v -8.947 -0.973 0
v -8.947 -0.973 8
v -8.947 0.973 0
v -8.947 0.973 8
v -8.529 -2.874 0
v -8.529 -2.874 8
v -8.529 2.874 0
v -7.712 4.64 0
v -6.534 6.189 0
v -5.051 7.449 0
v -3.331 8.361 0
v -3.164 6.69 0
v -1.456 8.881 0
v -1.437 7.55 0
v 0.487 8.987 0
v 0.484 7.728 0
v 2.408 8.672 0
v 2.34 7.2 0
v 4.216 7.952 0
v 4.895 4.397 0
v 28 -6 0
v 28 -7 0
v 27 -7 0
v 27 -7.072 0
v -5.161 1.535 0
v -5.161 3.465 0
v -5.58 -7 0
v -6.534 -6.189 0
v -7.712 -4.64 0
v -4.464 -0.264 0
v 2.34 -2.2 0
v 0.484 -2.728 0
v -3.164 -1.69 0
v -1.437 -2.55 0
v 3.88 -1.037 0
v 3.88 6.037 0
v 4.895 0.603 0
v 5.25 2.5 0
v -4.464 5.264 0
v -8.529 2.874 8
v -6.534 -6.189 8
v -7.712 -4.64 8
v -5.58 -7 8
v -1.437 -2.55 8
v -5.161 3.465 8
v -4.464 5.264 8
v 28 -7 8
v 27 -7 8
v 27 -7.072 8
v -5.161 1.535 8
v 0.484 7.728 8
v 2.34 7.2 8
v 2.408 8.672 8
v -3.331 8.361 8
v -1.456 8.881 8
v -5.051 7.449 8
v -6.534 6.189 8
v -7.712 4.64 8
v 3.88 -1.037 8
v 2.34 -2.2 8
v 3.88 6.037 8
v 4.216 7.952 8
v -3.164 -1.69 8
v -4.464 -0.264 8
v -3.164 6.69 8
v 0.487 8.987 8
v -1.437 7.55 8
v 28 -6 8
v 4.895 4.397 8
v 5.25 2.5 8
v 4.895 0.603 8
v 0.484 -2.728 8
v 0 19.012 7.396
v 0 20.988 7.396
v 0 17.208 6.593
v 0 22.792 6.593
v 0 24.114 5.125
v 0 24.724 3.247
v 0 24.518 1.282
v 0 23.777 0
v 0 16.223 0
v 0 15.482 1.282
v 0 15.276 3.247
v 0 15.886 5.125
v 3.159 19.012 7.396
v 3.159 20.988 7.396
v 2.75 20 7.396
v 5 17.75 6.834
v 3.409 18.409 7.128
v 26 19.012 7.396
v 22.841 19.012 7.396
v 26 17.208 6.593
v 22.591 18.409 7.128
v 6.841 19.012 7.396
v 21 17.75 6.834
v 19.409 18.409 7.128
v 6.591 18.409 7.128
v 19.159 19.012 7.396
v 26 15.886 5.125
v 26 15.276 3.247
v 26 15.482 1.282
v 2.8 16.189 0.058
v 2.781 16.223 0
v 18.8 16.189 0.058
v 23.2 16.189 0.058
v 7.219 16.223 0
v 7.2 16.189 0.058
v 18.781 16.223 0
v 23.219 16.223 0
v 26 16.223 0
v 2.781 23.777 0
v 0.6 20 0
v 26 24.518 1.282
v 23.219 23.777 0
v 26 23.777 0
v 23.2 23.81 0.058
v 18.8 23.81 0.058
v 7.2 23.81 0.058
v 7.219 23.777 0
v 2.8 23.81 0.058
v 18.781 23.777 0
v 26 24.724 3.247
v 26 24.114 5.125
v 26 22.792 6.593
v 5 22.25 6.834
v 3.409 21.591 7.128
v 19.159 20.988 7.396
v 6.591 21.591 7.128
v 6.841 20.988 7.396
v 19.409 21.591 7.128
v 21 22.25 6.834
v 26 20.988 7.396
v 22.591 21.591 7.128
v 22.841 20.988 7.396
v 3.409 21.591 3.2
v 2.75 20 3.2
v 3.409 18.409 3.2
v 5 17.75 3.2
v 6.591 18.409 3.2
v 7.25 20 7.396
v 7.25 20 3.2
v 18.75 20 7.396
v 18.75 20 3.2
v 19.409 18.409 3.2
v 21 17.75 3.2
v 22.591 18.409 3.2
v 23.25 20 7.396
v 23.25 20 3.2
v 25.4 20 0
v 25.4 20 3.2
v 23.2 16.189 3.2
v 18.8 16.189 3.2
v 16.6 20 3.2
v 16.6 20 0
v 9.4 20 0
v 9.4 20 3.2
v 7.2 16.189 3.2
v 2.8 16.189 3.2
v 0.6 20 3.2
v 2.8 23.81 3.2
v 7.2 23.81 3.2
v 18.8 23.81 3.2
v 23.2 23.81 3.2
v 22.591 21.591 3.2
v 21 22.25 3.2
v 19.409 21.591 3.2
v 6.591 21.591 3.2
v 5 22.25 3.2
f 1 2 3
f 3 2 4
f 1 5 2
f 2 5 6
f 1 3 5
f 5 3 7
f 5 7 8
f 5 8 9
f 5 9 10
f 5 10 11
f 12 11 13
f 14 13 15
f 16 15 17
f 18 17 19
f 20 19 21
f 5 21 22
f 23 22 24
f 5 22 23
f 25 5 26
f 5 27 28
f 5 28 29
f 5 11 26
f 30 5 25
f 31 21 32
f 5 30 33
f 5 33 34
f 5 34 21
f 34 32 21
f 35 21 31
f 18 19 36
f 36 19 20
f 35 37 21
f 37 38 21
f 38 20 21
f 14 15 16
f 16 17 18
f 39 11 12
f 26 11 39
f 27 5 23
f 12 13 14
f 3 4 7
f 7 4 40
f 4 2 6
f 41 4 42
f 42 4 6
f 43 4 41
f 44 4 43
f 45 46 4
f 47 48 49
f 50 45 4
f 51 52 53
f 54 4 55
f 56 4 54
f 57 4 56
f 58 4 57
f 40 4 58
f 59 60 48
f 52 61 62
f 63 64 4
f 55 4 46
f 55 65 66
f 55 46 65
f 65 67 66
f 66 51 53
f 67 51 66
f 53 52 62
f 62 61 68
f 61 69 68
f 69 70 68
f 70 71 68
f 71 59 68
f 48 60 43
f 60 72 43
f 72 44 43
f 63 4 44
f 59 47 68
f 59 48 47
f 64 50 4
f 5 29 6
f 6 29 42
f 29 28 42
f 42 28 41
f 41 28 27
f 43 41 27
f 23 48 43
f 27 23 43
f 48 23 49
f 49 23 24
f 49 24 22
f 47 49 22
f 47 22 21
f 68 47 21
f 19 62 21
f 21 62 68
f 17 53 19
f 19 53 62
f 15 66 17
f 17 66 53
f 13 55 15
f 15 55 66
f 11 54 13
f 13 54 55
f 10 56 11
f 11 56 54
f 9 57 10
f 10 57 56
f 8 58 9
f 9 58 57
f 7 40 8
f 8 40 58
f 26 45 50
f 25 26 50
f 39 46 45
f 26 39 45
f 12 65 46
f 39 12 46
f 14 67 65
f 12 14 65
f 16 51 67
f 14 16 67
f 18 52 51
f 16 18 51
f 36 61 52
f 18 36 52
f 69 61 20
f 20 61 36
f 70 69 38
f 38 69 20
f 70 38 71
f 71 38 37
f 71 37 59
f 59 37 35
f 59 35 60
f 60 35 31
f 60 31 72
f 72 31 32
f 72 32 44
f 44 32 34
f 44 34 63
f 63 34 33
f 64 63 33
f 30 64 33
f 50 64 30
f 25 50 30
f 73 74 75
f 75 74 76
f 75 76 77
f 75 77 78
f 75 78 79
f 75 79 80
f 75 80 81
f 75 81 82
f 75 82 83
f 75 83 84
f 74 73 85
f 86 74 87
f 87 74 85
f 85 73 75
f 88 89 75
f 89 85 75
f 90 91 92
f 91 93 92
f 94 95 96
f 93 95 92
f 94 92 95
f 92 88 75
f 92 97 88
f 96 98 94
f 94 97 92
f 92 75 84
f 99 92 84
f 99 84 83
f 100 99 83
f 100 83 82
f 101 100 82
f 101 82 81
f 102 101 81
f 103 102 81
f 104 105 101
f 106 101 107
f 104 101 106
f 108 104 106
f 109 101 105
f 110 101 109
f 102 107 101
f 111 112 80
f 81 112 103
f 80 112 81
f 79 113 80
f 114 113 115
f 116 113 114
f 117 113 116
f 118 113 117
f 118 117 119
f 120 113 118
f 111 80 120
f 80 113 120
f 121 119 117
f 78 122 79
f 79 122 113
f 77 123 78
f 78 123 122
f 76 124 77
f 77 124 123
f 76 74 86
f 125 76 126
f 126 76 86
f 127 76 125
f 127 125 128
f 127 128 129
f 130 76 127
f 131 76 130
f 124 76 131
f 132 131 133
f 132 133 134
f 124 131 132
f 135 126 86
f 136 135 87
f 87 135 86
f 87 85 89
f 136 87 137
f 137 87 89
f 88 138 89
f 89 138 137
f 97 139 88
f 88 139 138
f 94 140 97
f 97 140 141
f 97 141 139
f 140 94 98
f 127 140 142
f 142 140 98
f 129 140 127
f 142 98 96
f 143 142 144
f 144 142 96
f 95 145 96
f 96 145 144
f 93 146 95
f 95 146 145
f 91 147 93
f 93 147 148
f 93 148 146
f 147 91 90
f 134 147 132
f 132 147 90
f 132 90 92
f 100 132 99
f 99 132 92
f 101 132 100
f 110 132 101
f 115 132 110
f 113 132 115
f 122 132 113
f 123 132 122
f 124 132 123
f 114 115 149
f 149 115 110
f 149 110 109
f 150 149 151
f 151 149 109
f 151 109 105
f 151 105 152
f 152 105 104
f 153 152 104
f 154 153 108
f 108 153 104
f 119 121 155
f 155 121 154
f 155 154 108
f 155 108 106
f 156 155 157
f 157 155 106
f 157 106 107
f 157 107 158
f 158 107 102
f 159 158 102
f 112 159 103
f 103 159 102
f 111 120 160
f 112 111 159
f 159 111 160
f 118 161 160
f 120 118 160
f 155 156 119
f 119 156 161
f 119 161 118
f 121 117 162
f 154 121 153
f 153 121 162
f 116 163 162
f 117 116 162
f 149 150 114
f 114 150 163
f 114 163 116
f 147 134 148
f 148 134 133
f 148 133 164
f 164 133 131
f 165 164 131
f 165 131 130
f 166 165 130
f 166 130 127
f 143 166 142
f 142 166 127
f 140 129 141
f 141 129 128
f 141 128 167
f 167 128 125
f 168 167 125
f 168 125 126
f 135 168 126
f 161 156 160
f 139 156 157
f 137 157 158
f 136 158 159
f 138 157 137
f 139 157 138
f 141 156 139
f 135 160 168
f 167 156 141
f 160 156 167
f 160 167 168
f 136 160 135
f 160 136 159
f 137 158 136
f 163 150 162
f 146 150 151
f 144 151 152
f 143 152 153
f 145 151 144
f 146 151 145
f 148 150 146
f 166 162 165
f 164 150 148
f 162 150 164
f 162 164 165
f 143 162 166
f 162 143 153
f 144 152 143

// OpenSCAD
head_diameter=18;
head_radius=head_diameter/2;
head_thickness=8;
head_lever_length=36-head_radius;
flat_width=2;

bar_diameter=9.5;
bar_radiusr=bar_diameter/2;
bar_length=26;

head();
translate([0,20,0])rotate([0,90,0])
bar();

module head(){
	difference(){
		hull(){
			
			cylinder(h=head_thickness, r=head_radius);
			#translate([head_lever_length,-head_radius+flat_width,0])cube([1,1,head_thickness]);
		}
		#translate([-head_radius,-(head_diameter+head_radius)+flat_width,0])cube([head_diameter*2,head_diameter,head_thickness]);
		#translate([0,2.5,0])cylinder(h=bar_length,r=bar_radiusr+0.5);
	}
}

module bar(){
	difference(){
		translate([-bar_radiusr+2,0,0])cylinder(h=bar_length,r=bar_radiusr);

		translate([0,-bar_radiusr,0])cube([bar_diameter,bar_diameter,bar_length]);
		translate([0,0,5])rotate([0,90,180])#m4Screw();
		translate([0,0,bar_length-5])rotate([0,90,180])#m4Screw();
	}
}

module m4Screw(h=15) {
	union() {
		translate([0,0,3.0])cylinder(h=h+3.3,r=4.5/2);
//		cylinder(h=5,r=3.6/2);
//		#translate([0,0,h-0.4])cylinder(h=5.5,r=6.3/2);
		translate([0,0,-0.1])cylinder(h=3.3,r=8.8/2,$fn=6);
	}
}
